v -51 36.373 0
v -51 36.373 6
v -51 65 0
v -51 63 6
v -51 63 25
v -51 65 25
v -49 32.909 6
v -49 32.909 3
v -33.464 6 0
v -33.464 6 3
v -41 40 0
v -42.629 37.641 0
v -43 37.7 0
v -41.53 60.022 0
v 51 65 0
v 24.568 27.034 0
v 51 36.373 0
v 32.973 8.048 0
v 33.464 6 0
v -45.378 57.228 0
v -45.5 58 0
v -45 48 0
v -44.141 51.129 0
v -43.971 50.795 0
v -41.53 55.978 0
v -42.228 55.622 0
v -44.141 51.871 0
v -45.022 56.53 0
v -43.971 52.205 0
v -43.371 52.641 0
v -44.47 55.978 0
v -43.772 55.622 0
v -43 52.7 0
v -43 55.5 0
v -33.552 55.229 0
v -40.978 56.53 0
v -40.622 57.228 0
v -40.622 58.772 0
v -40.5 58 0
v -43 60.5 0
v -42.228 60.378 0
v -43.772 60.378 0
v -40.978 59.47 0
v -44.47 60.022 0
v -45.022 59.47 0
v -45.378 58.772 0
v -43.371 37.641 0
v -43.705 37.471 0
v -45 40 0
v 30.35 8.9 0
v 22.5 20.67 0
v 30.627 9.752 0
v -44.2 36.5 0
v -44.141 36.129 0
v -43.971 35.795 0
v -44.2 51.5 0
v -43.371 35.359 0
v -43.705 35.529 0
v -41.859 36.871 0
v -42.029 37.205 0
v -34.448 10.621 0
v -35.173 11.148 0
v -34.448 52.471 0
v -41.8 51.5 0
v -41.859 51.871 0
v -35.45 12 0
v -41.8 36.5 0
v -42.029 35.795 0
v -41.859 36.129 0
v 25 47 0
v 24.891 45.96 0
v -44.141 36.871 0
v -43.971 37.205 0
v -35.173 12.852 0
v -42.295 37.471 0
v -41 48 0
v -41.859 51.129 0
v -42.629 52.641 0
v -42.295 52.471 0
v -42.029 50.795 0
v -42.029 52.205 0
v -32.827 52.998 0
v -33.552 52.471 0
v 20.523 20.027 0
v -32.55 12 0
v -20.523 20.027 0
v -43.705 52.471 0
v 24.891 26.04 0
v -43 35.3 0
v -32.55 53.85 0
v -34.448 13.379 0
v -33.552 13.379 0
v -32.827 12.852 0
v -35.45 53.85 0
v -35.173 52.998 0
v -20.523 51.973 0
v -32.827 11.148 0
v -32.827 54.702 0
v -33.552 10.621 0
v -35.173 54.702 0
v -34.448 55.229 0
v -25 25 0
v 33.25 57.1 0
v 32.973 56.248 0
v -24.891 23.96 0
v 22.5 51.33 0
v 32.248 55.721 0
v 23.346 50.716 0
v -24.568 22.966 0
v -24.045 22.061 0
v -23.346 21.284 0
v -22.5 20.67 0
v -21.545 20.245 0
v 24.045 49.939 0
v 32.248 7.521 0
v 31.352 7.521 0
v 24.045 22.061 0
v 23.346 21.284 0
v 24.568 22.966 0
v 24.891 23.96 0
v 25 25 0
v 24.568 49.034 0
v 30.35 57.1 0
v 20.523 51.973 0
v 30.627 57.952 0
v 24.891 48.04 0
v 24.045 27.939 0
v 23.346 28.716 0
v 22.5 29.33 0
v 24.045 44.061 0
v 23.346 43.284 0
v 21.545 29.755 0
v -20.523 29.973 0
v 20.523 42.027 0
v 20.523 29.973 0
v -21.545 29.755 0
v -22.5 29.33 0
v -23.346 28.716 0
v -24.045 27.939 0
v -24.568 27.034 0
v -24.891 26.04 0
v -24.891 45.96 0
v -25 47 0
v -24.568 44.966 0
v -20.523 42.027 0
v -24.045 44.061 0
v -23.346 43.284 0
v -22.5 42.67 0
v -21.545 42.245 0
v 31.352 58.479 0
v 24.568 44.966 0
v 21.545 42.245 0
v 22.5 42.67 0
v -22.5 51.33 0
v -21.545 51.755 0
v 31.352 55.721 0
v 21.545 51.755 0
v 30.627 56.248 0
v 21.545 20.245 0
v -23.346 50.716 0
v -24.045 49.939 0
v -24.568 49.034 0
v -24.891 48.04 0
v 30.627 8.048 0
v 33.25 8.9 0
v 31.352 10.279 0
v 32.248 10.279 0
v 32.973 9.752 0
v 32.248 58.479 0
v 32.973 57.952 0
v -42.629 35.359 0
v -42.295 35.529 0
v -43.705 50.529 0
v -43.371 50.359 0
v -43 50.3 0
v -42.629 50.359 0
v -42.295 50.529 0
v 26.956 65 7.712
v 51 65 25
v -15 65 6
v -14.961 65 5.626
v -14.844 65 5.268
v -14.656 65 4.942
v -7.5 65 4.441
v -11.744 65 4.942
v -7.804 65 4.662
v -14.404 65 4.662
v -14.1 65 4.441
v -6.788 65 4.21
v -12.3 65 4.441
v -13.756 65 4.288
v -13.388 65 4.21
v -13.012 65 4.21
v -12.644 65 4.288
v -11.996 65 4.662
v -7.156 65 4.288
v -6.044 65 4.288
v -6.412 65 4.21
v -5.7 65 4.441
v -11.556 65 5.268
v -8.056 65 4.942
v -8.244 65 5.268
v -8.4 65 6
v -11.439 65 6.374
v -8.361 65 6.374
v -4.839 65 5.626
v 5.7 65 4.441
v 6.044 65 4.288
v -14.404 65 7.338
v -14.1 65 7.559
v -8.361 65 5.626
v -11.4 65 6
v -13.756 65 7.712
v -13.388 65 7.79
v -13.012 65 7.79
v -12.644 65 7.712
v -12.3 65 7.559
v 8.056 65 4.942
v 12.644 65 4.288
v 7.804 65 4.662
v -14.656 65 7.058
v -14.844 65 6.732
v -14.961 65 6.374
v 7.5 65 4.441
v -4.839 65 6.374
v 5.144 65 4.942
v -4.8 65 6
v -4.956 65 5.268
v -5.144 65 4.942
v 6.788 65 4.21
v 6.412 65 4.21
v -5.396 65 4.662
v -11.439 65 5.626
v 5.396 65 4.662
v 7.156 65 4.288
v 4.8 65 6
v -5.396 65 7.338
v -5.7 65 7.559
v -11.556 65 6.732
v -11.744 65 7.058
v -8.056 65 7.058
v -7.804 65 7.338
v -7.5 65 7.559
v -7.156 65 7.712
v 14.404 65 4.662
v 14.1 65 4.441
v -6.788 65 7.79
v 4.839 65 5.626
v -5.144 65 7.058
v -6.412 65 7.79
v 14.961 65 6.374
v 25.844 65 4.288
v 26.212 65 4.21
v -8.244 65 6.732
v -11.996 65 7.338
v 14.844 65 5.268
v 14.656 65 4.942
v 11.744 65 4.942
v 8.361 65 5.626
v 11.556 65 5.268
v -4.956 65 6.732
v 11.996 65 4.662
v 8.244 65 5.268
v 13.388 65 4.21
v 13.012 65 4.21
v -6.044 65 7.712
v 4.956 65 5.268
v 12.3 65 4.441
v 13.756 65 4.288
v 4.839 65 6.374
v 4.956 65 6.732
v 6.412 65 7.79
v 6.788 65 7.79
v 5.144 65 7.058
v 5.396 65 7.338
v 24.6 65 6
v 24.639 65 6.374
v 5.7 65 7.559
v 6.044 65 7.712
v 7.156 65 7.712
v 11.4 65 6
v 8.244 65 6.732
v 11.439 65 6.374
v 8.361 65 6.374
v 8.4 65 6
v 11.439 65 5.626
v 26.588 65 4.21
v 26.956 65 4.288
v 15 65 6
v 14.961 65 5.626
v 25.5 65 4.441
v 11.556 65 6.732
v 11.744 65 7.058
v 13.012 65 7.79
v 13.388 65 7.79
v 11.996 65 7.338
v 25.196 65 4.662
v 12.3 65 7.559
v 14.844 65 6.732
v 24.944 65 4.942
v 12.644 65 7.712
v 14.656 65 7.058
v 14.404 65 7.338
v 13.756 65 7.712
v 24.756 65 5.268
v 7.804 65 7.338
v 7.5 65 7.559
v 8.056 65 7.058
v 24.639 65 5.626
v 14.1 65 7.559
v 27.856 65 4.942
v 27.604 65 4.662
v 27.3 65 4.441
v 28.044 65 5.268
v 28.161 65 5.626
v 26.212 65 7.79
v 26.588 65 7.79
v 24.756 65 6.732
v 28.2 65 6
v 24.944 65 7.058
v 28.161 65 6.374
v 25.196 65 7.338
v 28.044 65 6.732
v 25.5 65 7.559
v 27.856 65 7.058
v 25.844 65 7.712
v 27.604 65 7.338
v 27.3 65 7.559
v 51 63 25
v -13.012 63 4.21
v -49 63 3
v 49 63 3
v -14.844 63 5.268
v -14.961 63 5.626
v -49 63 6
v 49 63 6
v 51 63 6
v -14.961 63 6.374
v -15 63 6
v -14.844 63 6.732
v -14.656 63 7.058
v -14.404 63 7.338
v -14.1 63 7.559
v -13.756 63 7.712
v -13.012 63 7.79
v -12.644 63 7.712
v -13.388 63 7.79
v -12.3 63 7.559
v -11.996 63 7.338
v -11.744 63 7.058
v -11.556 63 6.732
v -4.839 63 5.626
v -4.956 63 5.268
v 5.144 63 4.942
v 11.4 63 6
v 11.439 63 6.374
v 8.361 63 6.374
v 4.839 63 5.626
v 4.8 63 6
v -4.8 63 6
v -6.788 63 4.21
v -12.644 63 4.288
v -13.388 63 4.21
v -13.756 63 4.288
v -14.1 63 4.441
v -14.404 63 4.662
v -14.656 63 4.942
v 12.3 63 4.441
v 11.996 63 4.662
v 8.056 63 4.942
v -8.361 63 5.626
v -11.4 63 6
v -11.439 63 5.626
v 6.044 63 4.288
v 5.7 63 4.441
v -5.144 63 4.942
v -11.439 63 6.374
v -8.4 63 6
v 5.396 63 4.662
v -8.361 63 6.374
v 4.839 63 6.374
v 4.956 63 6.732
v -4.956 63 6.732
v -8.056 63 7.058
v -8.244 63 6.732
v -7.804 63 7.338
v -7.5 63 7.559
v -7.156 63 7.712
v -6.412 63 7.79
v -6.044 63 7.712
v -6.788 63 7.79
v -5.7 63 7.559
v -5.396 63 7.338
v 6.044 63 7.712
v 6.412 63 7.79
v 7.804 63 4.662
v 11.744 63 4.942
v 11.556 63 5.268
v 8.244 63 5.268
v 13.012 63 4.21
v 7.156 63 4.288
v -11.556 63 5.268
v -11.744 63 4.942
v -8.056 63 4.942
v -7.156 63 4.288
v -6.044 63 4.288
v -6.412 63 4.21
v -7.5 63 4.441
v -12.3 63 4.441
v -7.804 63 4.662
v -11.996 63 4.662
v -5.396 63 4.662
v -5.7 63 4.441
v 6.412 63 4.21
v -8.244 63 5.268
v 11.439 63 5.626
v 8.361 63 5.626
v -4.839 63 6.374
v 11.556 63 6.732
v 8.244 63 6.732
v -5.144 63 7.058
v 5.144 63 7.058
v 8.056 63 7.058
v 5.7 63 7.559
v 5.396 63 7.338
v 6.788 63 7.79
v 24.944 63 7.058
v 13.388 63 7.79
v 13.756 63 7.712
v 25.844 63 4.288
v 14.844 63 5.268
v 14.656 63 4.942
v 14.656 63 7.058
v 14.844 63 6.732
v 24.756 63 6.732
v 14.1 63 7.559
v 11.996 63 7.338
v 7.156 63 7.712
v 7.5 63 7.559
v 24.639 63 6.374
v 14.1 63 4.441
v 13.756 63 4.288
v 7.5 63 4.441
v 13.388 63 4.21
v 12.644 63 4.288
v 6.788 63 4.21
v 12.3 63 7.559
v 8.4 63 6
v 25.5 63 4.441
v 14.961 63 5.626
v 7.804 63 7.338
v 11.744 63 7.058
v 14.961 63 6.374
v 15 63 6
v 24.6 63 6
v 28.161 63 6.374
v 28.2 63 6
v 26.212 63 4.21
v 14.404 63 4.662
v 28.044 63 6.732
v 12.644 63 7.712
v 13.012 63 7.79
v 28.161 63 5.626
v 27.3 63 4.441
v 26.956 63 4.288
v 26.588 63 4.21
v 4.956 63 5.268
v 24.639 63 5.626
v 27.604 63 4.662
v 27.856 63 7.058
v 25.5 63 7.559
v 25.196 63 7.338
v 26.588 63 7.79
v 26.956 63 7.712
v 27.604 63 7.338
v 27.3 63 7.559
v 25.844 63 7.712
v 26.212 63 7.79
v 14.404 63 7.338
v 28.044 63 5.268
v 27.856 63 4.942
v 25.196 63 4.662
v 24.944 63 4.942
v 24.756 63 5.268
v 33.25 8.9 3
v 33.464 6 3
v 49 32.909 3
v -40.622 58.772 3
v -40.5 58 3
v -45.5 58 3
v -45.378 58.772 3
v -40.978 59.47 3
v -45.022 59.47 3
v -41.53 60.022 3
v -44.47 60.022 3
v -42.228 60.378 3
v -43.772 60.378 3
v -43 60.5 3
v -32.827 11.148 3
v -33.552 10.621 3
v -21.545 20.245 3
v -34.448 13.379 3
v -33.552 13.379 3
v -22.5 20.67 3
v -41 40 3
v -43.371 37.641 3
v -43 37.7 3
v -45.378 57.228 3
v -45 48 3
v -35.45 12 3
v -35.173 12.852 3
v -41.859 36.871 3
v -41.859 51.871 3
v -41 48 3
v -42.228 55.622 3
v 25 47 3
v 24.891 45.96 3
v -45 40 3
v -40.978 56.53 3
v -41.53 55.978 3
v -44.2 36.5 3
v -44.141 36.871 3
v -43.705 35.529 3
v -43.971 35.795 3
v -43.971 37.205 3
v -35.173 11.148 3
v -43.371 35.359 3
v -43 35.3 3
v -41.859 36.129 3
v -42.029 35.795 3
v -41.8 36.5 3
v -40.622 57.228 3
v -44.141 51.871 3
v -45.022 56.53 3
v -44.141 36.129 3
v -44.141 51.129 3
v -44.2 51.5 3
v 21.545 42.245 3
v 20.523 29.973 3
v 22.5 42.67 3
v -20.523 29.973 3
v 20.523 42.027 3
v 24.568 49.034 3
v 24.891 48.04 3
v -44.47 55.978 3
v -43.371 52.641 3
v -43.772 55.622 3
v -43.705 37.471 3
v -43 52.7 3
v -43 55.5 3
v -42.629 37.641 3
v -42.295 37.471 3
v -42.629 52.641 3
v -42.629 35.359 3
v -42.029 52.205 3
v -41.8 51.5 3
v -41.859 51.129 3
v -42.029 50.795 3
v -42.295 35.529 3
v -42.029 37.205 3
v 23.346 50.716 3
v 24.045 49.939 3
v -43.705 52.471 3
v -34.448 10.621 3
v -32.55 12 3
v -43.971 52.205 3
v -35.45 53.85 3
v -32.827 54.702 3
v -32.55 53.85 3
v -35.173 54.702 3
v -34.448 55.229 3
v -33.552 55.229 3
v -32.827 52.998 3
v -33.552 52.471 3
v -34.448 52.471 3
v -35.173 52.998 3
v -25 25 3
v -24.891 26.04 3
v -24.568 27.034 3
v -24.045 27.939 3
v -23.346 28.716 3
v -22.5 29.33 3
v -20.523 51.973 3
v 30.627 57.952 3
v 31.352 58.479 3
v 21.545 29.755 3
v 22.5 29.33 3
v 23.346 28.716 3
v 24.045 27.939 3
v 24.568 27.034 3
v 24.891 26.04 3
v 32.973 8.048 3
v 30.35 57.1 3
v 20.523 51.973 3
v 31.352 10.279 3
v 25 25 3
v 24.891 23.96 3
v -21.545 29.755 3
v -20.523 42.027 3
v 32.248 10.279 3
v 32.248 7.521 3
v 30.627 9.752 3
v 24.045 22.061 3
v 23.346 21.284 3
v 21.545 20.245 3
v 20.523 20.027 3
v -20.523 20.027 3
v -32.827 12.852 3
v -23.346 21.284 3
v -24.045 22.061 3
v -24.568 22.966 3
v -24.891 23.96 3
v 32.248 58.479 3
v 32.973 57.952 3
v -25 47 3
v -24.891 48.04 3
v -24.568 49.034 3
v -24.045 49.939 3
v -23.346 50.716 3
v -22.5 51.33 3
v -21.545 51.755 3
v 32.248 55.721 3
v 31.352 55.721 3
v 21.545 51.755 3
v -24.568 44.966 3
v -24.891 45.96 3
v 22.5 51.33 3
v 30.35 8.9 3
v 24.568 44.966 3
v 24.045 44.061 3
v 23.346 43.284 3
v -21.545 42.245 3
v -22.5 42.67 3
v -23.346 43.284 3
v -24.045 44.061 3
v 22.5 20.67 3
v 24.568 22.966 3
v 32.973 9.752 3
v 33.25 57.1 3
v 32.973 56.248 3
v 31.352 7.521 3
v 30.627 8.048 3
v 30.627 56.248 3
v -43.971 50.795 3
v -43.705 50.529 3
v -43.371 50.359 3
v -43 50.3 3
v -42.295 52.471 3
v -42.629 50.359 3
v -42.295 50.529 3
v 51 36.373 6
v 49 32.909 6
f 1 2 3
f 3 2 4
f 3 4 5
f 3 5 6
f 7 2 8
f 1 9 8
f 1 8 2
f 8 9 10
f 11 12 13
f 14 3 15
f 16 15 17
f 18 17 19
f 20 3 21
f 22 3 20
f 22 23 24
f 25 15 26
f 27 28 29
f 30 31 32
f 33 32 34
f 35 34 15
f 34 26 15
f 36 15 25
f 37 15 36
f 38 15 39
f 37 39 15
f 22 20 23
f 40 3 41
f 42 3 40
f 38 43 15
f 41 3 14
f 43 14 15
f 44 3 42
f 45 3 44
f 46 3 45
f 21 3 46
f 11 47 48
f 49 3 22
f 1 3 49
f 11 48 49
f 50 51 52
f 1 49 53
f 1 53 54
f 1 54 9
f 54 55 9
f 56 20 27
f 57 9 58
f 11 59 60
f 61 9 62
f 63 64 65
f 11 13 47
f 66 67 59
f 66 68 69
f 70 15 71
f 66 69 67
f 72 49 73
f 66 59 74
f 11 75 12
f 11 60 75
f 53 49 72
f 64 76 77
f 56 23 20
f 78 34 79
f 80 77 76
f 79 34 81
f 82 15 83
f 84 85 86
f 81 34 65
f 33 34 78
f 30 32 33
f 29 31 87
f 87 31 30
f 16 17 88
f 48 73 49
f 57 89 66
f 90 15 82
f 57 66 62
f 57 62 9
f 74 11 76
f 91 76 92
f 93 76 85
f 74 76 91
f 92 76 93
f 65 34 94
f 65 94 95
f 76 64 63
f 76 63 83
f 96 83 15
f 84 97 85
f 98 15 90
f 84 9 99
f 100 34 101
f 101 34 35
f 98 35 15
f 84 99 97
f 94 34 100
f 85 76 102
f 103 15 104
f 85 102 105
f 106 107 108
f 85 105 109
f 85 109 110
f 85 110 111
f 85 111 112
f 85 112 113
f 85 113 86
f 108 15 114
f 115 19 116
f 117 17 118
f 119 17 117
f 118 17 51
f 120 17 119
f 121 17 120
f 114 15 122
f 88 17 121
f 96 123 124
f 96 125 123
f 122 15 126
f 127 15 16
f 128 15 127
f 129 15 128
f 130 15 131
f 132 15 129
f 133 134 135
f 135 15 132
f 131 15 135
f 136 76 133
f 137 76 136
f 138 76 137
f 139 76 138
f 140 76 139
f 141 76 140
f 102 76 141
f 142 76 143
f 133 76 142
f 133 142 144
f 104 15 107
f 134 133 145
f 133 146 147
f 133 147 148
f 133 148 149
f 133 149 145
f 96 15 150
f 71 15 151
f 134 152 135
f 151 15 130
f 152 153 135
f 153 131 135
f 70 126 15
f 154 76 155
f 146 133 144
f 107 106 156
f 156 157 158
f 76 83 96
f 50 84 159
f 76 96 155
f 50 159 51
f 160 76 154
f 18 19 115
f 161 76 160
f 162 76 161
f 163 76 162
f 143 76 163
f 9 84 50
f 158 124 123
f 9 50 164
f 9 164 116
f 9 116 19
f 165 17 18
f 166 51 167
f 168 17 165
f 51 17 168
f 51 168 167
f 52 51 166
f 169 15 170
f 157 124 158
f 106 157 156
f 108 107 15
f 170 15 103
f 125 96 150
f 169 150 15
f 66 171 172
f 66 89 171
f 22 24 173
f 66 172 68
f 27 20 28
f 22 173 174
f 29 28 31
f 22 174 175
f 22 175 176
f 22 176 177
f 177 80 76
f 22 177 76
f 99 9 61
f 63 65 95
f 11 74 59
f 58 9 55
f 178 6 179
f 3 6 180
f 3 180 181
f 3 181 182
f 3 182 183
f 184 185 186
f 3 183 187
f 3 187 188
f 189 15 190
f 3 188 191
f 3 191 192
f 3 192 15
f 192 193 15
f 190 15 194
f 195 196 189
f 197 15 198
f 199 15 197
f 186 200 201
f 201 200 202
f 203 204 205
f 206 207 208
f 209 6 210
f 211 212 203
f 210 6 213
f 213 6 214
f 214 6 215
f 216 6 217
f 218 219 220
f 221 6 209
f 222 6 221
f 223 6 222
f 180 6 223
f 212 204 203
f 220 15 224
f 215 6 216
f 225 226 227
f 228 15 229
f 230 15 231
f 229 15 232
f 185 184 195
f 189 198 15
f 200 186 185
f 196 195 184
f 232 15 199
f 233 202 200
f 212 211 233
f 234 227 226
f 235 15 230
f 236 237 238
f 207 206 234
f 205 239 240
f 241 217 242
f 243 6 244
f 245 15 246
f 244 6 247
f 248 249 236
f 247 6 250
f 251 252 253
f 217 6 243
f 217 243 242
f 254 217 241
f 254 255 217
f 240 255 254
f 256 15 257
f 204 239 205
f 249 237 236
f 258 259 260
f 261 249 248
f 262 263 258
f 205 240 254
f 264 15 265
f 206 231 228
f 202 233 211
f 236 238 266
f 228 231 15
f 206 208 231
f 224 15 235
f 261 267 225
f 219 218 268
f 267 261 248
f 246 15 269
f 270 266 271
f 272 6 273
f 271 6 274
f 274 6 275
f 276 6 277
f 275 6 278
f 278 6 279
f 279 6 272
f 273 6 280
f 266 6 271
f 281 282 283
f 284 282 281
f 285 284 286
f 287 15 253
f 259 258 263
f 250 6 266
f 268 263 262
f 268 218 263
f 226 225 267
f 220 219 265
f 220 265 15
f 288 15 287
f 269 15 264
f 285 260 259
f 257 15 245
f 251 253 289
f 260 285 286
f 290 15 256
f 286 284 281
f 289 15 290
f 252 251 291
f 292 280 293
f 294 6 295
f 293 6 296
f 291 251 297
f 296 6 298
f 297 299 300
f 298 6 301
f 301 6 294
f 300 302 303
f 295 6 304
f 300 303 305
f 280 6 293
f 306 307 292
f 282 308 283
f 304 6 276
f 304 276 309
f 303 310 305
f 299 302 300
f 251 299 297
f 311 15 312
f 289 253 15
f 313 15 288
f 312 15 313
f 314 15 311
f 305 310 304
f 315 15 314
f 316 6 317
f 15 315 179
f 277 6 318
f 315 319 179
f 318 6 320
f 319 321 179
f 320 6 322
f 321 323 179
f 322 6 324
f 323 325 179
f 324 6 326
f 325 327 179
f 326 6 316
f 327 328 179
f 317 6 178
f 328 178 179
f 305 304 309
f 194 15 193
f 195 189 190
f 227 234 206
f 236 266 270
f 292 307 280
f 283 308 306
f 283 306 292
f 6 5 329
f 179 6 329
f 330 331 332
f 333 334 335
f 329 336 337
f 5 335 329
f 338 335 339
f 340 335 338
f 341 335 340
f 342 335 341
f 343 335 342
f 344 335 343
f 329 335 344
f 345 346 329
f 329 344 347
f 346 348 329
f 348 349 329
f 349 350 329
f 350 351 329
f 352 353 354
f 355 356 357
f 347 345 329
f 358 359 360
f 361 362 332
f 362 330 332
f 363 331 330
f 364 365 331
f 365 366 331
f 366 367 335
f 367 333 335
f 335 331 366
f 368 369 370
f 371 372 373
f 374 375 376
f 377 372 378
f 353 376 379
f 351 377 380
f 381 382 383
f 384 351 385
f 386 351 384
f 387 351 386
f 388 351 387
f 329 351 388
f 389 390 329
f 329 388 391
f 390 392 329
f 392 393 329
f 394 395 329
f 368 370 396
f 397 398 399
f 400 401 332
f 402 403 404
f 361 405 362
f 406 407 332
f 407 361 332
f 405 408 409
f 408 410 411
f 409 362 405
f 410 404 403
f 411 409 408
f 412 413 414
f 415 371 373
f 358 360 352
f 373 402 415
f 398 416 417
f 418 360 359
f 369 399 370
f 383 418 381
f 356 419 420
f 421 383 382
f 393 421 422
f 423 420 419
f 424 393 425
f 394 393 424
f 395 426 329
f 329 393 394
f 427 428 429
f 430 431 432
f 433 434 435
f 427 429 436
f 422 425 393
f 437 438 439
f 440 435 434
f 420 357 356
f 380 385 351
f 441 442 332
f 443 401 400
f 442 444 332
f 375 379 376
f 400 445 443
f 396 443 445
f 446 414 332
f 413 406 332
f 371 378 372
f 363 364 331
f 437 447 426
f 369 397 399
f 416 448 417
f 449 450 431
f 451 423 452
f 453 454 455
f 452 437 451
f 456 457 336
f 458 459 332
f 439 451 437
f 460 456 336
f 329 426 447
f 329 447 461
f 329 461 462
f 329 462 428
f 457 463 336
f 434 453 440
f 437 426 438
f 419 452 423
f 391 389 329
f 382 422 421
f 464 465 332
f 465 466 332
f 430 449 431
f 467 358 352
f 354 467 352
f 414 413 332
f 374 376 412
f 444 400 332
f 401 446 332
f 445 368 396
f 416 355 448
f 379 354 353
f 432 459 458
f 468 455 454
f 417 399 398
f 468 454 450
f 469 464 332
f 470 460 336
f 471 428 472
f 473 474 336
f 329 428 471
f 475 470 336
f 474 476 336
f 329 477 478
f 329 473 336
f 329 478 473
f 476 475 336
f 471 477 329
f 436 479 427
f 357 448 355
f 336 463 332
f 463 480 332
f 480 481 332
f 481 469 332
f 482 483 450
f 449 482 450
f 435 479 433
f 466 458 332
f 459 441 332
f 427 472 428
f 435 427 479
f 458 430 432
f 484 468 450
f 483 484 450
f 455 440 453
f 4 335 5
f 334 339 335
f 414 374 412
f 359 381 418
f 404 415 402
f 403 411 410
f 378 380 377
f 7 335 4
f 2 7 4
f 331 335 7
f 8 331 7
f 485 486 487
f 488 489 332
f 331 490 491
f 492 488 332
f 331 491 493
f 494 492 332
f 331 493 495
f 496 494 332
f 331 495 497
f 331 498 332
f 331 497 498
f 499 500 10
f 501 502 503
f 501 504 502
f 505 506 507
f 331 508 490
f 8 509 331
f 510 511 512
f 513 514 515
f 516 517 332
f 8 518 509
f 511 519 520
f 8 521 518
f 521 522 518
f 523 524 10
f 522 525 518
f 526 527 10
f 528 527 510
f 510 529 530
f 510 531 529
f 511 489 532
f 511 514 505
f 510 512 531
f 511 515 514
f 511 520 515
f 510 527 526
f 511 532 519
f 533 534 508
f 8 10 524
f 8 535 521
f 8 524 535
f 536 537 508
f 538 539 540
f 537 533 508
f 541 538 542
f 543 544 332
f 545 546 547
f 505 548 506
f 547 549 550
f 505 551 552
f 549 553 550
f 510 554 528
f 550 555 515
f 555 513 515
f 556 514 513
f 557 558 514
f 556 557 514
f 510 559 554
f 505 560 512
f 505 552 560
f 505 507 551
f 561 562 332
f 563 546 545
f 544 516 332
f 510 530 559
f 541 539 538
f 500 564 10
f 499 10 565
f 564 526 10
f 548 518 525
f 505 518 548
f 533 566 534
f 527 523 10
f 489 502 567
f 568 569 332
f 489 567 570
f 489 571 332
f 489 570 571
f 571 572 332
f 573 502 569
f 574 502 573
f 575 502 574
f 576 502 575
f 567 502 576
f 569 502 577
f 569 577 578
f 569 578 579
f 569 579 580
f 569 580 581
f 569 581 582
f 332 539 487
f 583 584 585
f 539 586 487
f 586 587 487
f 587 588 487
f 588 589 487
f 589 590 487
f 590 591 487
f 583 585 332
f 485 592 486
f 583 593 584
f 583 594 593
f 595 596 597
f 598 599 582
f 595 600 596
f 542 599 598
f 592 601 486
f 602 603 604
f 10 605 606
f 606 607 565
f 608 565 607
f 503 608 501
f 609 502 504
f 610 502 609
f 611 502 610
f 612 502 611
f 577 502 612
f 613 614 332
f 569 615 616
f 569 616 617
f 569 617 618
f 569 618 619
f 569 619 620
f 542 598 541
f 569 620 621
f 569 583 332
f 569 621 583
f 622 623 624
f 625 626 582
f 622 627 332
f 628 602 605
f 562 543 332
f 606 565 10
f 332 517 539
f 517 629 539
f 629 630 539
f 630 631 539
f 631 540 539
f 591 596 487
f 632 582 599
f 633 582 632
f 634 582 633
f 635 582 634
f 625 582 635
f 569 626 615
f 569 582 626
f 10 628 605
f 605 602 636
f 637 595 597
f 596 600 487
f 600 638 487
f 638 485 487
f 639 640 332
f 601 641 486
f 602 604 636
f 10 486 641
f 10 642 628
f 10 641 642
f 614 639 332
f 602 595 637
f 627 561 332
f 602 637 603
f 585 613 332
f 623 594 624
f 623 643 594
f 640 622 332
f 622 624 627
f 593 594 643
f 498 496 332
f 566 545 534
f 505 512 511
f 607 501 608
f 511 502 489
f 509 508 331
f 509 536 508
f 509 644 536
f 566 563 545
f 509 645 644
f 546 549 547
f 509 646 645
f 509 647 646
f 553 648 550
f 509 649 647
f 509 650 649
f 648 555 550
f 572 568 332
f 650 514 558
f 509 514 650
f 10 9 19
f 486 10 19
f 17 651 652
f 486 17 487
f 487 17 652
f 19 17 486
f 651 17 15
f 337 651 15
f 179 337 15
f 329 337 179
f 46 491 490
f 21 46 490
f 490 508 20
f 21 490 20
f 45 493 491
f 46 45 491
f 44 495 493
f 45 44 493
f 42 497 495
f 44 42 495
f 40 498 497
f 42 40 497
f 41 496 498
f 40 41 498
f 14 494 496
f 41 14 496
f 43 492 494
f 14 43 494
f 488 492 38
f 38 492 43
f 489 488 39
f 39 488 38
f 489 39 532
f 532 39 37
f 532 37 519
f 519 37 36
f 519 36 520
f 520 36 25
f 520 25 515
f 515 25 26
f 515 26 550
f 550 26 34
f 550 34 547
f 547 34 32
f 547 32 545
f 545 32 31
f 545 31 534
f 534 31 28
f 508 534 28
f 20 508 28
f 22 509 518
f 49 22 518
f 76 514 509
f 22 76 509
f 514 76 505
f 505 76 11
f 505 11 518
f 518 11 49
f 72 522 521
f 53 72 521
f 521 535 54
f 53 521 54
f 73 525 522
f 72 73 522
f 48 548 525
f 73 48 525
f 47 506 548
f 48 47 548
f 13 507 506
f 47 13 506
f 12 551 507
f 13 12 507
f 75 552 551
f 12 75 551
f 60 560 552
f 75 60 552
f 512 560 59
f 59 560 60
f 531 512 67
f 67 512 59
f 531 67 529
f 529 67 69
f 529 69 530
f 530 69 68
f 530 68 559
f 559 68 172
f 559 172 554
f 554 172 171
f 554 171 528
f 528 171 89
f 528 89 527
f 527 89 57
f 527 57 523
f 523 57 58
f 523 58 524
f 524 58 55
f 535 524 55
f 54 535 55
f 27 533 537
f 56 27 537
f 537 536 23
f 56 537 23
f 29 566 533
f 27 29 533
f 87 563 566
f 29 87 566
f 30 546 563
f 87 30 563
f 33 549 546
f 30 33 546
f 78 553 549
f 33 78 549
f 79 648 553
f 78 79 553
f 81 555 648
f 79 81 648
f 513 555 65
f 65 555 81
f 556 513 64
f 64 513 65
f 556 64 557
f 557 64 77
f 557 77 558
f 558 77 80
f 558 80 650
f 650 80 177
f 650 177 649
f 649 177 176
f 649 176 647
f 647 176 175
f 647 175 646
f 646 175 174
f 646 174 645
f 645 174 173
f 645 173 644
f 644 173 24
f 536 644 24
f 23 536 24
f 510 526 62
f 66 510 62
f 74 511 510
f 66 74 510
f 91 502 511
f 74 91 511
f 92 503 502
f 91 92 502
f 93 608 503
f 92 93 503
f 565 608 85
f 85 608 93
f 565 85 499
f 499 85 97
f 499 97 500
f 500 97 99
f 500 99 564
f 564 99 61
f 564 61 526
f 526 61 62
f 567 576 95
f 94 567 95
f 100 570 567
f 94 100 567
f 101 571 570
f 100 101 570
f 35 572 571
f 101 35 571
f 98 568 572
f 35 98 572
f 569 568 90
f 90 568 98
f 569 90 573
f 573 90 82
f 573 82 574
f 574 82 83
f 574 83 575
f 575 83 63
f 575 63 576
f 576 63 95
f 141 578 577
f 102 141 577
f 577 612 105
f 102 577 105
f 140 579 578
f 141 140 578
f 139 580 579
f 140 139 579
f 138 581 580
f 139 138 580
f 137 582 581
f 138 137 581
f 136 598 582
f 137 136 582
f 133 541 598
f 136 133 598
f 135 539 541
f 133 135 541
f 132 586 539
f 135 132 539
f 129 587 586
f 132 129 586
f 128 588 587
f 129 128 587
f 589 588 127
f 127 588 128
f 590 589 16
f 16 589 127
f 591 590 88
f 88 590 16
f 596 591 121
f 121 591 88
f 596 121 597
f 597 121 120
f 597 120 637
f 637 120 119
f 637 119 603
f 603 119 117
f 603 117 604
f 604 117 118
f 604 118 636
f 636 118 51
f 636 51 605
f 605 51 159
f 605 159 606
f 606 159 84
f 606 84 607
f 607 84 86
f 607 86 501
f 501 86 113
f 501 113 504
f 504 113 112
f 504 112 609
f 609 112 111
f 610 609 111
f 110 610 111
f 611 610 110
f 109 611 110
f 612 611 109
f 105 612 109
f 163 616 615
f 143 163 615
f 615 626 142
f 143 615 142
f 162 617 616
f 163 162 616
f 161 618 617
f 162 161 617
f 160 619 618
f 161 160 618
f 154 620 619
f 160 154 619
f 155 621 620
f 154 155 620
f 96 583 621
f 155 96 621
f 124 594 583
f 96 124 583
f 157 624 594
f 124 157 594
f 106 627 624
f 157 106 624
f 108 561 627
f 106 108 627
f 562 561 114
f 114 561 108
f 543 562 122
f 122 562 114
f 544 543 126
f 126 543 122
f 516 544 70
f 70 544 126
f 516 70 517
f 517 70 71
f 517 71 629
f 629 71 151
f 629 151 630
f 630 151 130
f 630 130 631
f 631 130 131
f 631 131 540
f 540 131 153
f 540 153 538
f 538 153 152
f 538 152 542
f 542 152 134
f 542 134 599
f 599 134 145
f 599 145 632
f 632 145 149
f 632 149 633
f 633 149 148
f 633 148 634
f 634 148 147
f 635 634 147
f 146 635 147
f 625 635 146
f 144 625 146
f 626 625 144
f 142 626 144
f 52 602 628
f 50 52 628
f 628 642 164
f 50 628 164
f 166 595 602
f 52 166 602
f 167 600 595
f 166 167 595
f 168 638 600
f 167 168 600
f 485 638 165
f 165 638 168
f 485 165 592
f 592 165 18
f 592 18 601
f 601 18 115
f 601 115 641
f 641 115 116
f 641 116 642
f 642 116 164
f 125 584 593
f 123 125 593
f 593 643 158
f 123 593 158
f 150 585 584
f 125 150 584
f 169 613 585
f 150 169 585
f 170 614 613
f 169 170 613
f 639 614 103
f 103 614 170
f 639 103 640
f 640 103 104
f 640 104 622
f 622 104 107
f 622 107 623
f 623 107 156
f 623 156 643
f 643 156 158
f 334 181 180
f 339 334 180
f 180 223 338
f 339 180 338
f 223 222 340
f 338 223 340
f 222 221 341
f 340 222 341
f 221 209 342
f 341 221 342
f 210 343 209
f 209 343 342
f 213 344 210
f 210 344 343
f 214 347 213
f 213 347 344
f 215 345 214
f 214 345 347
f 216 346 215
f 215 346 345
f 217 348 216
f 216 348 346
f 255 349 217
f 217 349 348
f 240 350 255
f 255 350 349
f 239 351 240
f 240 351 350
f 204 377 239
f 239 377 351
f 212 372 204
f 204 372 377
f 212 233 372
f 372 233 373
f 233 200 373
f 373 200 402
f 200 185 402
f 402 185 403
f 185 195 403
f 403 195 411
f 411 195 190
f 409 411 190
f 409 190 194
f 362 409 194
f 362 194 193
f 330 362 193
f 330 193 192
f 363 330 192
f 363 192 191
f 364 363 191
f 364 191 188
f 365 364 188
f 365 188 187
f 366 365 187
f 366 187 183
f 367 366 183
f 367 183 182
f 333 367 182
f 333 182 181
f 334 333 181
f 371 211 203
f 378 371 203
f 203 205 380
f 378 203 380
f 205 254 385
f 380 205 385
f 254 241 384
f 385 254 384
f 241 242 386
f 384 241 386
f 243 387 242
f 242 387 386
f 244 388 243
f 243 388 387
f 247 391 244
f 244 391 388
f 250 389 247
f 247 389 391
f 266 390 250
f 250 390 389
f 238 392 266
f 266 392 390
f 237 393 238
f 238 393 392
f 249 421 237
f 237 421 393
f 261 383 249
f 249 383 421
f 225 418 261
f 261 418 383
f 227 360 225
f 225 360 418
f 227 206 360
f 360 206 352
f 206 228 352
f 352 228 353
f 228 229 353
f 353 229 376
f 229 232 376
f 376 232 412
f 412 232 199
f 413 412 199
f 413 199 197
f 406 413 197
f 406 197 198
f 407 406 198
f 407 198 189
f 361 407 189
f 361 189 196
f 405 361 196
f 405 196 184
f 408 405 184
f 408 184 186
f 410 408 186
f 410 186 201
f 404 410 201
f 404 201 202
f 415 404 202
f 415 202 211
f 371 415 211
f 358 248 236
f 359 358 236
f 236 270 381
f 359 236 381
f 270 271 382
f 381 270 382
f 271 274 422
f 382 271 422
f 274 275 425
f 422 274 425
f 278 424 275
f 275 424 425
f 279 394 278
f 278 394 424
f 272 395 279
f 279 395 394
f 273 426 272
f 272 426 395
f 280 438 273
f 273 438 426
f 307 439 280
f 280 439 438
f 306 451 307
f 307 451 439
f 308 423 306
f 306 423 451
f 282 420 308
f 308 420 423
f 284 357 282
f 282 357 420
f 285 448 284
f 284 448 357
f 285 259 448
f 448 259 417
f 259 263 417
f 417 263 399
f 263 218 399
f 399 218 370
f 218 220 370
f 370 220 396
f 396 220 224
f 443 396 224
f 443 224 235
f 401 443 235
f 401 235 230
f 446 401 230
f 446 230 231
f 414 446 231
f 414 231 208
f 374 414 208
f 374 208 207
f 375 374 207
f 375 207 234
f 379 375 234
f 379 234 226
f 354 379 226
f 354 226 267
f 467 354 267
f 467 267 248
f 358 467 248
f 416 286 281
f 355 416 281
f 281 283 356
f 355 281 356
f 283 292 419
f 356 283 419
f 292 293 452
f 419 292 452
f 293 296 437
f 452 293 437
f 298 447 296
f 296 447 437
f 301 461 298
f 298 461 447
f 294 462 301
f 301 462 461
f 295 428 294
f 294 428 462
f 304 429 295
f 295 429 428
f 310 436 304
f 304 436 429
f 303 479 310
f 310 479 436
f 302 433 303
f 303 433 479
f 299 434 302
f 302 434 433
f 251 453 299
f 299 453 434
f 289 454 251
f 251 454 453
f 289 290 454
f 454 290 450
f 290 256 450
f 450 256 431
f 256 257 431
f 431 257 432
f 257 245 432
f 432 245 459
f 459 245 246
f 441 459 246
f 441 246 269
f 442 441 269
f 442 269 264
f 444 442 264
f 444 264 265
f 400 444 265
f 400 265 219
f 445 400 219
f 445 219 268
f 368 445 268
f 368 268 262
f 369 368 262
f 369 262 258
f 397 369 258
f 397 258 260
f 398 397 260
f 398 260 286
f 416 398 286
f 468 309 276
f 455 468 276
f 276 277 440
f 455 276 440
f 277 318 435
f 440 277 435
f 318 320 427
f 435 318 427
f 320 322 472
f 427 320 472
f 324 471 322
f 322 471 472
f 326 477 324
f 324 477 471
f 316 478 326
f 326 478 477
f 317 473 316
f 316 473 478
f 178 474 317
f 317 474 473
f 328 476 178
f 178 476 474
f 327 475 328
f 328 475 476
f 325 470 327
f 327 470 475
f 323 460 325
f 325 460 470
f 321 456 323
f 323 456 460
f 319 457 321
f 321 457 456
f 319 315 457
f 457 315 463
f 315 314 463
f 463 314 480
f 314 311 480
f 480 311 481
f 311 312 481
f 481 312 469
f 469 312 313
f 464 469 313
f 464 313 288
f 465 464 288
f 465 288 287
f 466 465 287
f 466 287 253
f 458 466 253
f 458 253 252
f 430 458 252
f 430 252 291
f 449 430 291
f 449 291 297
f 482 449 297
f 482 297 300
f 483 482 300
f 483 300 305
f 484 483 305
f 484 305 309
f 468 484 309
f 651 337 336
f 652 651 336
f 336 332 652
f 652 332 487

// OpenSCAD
// file: raid3r/raid3r.scad
/*Pequeña biblioteca con las funciones mas comunes*/

module agujereado(X,Y,H){
	union(){
		for(j=[0:X-1])
		{
			translate([0,j*8,0])
			{
				for(i=[0:Y-1])
				{
					translate([i*6,0,-1])cylinder(r=1.2, h=H, $fn=10);
				}
			}
		}
	}
}

module dynahole(H){
	translate([-45.5/2,-10,1])union(){
		translate([3.5+6,16,0])agujereado(4,1,H);
		translate([9.5+26.5,16,0])agujereado(4,1,H);
		translate([45.5/2,10,-1])cylinder(r=11.5,h=H);	
		translate([(45.5-20)/2,6.5,-1])cube([20,36,H]);
		translate([22.5,46,0])union(){
			translate([7,0,-1])cylinder(r=1.5, h=H, $fn=10);
			translate([-7,0,-1])cylinder(r=1.5, h=H, $fn=10);
		}
	}
}

module cruz(H){
	translate([-34,-13,3])union(){
		translate([34,13,-3]) cylinder(r=4,h=H);
		translate([42,13,-3]) cylinder(r=1.5,h=H);
		translate([26,13,-3]) cylinder(r=1.5,h=H);
		translate([34,21,-3]) cylinder(r=1.5,h=H);
		translate([34,5,-3]) cylinder(r=1.5,h=H);
	}
}

module miniservo(H){
	translate([-15,-7,0])union(){
		translate([15,7,0])rotate([0,0,0])cylinder(r=8,h=H);
		translate([-1.75,7,0])union(){
			cylinder(r=1.5, h=H,$fn=20);
			translate([27.5,0,0])cylinder(r=1.5, h=H,$fn=20);
		}
	}
}

module beagleboneHoles(z){
union(){
	translate([0,0,-1])cylinder(r=2,h=z, $fn=8);
	translate([0,46.5,-1])cylinder(r=2,h=z, $fn=8);
	translate([64.5+1.5,2.5,-1])cylinder(r=2,h=z, $fn=8);
	translate([64.5+1.5,44,-1])cylinder(r=2,h=z, $fn=8);
	translate([0,0,-1])cylinder(r=3,h=3, $fn=8);
	translate([0,46.5,-1])cylinder(r=3,h=3, $fn=8);
	translate([64.5+1.5,2.5,-1])cylinder(r=3,h=3, $fn=8);
	translate([64.5+1.5,44,-1])cylinder(r=3,h=3, $fn=8);
	}
}
// main file
use <raid3r/raid3r.scad>


module screw(d){
translate([0,0,-5])rotate([0,0,0])union(){
//cylinder(r=5.3/2, h=6, $fn=10);
cylinder(r=2.9/2, h=6+d, $fn=10);
}
}



module bbbholes(z){
union(){
translate([0,0,0])screw(30);
translate([0,41.85,0])screw(30);

translate([0,-3.1,0]){
translate([65.8,0,0])screw(30);
translate([65.8,48.2,0])screw(30);
}

}

}

module interruptor(){
translate([0,14,-10])cylinder(r=2.5,h=20,$fn=20);
translate([0,7.5,-10])cylinder(r=1.2,h=20,$fn=20);
translate([0,-7.5,-10])cylinder(r=1.2,h=20,$fn=20);
cube([4,8,20], center=true);

}



difference(){
union(){

	difference(){
translate([-51,6,0])cube([102,59,25]);
		translate([-49,4,3])cube([98,59,30]);
		translate([-60,4,6])cube([120,59,30]);
}


	


}
		translate([-43,44,0])interruptor();
		cylinder(r=4,h=20,$fn=20)

		translate([-10-51,-12,-5])rotate([0,0,-20])cube([20,20,80]);
		mirror([1,0,0])translate([-10-51,-12,-5])rotate([0,0,-20])cube([20,20,80]);
		translate([-15-19,12,0])bbbholes(6);


hull(){
translate([-20,25,-5])cylinder(r=5,h=20,$fn=30);
translate([20,25,-5])cylinder(r=5,h=20,$fn=30);
}
hull(){
translate([-20,47,-5])cylinder(r=5,h=20,$fn=30);
translate([20,47,-5])cylinder(r=5,h=20,$fn=30);
}

//		hull(){
//			translate([45,56,-10])cylinder(r=3,h=20);
//			translate([39,56,-10])cylinder(r=3,h=20);
//			translate([45,43,-10])cylinder(r=3,h=20);
//			translate([36,43,-10])cylinder(r=3,h=20);
//		}
		
		translate([13.2/2,0,6])rotate([-90,0,0])cylinder(r=1.8,h=200,$fn=30);
		translate([13.2,0,6])rotate([-90,0,0])cylinder(r=1.8,h=200,$fn=30);
		translate([-13.2,0,6])rotate([-90,0,0])cylinder(r=1.8,h=200,$fn=30);
		translate([-13.2/2,0,6])rotate([-90,0,0])cylinder(r=1.8,h=200,$fn=30);
		translate([13.2*2,0,6])rotate([-90,0,0])cylinder(r=1.8,h=200,$fn=30);
		mirror([1,0,0])translate([30,0,-1])rotate([0,0,-30])cube(50);
		translate([30,0,-1])rotate([0,0,-30])cube(50);


	}
